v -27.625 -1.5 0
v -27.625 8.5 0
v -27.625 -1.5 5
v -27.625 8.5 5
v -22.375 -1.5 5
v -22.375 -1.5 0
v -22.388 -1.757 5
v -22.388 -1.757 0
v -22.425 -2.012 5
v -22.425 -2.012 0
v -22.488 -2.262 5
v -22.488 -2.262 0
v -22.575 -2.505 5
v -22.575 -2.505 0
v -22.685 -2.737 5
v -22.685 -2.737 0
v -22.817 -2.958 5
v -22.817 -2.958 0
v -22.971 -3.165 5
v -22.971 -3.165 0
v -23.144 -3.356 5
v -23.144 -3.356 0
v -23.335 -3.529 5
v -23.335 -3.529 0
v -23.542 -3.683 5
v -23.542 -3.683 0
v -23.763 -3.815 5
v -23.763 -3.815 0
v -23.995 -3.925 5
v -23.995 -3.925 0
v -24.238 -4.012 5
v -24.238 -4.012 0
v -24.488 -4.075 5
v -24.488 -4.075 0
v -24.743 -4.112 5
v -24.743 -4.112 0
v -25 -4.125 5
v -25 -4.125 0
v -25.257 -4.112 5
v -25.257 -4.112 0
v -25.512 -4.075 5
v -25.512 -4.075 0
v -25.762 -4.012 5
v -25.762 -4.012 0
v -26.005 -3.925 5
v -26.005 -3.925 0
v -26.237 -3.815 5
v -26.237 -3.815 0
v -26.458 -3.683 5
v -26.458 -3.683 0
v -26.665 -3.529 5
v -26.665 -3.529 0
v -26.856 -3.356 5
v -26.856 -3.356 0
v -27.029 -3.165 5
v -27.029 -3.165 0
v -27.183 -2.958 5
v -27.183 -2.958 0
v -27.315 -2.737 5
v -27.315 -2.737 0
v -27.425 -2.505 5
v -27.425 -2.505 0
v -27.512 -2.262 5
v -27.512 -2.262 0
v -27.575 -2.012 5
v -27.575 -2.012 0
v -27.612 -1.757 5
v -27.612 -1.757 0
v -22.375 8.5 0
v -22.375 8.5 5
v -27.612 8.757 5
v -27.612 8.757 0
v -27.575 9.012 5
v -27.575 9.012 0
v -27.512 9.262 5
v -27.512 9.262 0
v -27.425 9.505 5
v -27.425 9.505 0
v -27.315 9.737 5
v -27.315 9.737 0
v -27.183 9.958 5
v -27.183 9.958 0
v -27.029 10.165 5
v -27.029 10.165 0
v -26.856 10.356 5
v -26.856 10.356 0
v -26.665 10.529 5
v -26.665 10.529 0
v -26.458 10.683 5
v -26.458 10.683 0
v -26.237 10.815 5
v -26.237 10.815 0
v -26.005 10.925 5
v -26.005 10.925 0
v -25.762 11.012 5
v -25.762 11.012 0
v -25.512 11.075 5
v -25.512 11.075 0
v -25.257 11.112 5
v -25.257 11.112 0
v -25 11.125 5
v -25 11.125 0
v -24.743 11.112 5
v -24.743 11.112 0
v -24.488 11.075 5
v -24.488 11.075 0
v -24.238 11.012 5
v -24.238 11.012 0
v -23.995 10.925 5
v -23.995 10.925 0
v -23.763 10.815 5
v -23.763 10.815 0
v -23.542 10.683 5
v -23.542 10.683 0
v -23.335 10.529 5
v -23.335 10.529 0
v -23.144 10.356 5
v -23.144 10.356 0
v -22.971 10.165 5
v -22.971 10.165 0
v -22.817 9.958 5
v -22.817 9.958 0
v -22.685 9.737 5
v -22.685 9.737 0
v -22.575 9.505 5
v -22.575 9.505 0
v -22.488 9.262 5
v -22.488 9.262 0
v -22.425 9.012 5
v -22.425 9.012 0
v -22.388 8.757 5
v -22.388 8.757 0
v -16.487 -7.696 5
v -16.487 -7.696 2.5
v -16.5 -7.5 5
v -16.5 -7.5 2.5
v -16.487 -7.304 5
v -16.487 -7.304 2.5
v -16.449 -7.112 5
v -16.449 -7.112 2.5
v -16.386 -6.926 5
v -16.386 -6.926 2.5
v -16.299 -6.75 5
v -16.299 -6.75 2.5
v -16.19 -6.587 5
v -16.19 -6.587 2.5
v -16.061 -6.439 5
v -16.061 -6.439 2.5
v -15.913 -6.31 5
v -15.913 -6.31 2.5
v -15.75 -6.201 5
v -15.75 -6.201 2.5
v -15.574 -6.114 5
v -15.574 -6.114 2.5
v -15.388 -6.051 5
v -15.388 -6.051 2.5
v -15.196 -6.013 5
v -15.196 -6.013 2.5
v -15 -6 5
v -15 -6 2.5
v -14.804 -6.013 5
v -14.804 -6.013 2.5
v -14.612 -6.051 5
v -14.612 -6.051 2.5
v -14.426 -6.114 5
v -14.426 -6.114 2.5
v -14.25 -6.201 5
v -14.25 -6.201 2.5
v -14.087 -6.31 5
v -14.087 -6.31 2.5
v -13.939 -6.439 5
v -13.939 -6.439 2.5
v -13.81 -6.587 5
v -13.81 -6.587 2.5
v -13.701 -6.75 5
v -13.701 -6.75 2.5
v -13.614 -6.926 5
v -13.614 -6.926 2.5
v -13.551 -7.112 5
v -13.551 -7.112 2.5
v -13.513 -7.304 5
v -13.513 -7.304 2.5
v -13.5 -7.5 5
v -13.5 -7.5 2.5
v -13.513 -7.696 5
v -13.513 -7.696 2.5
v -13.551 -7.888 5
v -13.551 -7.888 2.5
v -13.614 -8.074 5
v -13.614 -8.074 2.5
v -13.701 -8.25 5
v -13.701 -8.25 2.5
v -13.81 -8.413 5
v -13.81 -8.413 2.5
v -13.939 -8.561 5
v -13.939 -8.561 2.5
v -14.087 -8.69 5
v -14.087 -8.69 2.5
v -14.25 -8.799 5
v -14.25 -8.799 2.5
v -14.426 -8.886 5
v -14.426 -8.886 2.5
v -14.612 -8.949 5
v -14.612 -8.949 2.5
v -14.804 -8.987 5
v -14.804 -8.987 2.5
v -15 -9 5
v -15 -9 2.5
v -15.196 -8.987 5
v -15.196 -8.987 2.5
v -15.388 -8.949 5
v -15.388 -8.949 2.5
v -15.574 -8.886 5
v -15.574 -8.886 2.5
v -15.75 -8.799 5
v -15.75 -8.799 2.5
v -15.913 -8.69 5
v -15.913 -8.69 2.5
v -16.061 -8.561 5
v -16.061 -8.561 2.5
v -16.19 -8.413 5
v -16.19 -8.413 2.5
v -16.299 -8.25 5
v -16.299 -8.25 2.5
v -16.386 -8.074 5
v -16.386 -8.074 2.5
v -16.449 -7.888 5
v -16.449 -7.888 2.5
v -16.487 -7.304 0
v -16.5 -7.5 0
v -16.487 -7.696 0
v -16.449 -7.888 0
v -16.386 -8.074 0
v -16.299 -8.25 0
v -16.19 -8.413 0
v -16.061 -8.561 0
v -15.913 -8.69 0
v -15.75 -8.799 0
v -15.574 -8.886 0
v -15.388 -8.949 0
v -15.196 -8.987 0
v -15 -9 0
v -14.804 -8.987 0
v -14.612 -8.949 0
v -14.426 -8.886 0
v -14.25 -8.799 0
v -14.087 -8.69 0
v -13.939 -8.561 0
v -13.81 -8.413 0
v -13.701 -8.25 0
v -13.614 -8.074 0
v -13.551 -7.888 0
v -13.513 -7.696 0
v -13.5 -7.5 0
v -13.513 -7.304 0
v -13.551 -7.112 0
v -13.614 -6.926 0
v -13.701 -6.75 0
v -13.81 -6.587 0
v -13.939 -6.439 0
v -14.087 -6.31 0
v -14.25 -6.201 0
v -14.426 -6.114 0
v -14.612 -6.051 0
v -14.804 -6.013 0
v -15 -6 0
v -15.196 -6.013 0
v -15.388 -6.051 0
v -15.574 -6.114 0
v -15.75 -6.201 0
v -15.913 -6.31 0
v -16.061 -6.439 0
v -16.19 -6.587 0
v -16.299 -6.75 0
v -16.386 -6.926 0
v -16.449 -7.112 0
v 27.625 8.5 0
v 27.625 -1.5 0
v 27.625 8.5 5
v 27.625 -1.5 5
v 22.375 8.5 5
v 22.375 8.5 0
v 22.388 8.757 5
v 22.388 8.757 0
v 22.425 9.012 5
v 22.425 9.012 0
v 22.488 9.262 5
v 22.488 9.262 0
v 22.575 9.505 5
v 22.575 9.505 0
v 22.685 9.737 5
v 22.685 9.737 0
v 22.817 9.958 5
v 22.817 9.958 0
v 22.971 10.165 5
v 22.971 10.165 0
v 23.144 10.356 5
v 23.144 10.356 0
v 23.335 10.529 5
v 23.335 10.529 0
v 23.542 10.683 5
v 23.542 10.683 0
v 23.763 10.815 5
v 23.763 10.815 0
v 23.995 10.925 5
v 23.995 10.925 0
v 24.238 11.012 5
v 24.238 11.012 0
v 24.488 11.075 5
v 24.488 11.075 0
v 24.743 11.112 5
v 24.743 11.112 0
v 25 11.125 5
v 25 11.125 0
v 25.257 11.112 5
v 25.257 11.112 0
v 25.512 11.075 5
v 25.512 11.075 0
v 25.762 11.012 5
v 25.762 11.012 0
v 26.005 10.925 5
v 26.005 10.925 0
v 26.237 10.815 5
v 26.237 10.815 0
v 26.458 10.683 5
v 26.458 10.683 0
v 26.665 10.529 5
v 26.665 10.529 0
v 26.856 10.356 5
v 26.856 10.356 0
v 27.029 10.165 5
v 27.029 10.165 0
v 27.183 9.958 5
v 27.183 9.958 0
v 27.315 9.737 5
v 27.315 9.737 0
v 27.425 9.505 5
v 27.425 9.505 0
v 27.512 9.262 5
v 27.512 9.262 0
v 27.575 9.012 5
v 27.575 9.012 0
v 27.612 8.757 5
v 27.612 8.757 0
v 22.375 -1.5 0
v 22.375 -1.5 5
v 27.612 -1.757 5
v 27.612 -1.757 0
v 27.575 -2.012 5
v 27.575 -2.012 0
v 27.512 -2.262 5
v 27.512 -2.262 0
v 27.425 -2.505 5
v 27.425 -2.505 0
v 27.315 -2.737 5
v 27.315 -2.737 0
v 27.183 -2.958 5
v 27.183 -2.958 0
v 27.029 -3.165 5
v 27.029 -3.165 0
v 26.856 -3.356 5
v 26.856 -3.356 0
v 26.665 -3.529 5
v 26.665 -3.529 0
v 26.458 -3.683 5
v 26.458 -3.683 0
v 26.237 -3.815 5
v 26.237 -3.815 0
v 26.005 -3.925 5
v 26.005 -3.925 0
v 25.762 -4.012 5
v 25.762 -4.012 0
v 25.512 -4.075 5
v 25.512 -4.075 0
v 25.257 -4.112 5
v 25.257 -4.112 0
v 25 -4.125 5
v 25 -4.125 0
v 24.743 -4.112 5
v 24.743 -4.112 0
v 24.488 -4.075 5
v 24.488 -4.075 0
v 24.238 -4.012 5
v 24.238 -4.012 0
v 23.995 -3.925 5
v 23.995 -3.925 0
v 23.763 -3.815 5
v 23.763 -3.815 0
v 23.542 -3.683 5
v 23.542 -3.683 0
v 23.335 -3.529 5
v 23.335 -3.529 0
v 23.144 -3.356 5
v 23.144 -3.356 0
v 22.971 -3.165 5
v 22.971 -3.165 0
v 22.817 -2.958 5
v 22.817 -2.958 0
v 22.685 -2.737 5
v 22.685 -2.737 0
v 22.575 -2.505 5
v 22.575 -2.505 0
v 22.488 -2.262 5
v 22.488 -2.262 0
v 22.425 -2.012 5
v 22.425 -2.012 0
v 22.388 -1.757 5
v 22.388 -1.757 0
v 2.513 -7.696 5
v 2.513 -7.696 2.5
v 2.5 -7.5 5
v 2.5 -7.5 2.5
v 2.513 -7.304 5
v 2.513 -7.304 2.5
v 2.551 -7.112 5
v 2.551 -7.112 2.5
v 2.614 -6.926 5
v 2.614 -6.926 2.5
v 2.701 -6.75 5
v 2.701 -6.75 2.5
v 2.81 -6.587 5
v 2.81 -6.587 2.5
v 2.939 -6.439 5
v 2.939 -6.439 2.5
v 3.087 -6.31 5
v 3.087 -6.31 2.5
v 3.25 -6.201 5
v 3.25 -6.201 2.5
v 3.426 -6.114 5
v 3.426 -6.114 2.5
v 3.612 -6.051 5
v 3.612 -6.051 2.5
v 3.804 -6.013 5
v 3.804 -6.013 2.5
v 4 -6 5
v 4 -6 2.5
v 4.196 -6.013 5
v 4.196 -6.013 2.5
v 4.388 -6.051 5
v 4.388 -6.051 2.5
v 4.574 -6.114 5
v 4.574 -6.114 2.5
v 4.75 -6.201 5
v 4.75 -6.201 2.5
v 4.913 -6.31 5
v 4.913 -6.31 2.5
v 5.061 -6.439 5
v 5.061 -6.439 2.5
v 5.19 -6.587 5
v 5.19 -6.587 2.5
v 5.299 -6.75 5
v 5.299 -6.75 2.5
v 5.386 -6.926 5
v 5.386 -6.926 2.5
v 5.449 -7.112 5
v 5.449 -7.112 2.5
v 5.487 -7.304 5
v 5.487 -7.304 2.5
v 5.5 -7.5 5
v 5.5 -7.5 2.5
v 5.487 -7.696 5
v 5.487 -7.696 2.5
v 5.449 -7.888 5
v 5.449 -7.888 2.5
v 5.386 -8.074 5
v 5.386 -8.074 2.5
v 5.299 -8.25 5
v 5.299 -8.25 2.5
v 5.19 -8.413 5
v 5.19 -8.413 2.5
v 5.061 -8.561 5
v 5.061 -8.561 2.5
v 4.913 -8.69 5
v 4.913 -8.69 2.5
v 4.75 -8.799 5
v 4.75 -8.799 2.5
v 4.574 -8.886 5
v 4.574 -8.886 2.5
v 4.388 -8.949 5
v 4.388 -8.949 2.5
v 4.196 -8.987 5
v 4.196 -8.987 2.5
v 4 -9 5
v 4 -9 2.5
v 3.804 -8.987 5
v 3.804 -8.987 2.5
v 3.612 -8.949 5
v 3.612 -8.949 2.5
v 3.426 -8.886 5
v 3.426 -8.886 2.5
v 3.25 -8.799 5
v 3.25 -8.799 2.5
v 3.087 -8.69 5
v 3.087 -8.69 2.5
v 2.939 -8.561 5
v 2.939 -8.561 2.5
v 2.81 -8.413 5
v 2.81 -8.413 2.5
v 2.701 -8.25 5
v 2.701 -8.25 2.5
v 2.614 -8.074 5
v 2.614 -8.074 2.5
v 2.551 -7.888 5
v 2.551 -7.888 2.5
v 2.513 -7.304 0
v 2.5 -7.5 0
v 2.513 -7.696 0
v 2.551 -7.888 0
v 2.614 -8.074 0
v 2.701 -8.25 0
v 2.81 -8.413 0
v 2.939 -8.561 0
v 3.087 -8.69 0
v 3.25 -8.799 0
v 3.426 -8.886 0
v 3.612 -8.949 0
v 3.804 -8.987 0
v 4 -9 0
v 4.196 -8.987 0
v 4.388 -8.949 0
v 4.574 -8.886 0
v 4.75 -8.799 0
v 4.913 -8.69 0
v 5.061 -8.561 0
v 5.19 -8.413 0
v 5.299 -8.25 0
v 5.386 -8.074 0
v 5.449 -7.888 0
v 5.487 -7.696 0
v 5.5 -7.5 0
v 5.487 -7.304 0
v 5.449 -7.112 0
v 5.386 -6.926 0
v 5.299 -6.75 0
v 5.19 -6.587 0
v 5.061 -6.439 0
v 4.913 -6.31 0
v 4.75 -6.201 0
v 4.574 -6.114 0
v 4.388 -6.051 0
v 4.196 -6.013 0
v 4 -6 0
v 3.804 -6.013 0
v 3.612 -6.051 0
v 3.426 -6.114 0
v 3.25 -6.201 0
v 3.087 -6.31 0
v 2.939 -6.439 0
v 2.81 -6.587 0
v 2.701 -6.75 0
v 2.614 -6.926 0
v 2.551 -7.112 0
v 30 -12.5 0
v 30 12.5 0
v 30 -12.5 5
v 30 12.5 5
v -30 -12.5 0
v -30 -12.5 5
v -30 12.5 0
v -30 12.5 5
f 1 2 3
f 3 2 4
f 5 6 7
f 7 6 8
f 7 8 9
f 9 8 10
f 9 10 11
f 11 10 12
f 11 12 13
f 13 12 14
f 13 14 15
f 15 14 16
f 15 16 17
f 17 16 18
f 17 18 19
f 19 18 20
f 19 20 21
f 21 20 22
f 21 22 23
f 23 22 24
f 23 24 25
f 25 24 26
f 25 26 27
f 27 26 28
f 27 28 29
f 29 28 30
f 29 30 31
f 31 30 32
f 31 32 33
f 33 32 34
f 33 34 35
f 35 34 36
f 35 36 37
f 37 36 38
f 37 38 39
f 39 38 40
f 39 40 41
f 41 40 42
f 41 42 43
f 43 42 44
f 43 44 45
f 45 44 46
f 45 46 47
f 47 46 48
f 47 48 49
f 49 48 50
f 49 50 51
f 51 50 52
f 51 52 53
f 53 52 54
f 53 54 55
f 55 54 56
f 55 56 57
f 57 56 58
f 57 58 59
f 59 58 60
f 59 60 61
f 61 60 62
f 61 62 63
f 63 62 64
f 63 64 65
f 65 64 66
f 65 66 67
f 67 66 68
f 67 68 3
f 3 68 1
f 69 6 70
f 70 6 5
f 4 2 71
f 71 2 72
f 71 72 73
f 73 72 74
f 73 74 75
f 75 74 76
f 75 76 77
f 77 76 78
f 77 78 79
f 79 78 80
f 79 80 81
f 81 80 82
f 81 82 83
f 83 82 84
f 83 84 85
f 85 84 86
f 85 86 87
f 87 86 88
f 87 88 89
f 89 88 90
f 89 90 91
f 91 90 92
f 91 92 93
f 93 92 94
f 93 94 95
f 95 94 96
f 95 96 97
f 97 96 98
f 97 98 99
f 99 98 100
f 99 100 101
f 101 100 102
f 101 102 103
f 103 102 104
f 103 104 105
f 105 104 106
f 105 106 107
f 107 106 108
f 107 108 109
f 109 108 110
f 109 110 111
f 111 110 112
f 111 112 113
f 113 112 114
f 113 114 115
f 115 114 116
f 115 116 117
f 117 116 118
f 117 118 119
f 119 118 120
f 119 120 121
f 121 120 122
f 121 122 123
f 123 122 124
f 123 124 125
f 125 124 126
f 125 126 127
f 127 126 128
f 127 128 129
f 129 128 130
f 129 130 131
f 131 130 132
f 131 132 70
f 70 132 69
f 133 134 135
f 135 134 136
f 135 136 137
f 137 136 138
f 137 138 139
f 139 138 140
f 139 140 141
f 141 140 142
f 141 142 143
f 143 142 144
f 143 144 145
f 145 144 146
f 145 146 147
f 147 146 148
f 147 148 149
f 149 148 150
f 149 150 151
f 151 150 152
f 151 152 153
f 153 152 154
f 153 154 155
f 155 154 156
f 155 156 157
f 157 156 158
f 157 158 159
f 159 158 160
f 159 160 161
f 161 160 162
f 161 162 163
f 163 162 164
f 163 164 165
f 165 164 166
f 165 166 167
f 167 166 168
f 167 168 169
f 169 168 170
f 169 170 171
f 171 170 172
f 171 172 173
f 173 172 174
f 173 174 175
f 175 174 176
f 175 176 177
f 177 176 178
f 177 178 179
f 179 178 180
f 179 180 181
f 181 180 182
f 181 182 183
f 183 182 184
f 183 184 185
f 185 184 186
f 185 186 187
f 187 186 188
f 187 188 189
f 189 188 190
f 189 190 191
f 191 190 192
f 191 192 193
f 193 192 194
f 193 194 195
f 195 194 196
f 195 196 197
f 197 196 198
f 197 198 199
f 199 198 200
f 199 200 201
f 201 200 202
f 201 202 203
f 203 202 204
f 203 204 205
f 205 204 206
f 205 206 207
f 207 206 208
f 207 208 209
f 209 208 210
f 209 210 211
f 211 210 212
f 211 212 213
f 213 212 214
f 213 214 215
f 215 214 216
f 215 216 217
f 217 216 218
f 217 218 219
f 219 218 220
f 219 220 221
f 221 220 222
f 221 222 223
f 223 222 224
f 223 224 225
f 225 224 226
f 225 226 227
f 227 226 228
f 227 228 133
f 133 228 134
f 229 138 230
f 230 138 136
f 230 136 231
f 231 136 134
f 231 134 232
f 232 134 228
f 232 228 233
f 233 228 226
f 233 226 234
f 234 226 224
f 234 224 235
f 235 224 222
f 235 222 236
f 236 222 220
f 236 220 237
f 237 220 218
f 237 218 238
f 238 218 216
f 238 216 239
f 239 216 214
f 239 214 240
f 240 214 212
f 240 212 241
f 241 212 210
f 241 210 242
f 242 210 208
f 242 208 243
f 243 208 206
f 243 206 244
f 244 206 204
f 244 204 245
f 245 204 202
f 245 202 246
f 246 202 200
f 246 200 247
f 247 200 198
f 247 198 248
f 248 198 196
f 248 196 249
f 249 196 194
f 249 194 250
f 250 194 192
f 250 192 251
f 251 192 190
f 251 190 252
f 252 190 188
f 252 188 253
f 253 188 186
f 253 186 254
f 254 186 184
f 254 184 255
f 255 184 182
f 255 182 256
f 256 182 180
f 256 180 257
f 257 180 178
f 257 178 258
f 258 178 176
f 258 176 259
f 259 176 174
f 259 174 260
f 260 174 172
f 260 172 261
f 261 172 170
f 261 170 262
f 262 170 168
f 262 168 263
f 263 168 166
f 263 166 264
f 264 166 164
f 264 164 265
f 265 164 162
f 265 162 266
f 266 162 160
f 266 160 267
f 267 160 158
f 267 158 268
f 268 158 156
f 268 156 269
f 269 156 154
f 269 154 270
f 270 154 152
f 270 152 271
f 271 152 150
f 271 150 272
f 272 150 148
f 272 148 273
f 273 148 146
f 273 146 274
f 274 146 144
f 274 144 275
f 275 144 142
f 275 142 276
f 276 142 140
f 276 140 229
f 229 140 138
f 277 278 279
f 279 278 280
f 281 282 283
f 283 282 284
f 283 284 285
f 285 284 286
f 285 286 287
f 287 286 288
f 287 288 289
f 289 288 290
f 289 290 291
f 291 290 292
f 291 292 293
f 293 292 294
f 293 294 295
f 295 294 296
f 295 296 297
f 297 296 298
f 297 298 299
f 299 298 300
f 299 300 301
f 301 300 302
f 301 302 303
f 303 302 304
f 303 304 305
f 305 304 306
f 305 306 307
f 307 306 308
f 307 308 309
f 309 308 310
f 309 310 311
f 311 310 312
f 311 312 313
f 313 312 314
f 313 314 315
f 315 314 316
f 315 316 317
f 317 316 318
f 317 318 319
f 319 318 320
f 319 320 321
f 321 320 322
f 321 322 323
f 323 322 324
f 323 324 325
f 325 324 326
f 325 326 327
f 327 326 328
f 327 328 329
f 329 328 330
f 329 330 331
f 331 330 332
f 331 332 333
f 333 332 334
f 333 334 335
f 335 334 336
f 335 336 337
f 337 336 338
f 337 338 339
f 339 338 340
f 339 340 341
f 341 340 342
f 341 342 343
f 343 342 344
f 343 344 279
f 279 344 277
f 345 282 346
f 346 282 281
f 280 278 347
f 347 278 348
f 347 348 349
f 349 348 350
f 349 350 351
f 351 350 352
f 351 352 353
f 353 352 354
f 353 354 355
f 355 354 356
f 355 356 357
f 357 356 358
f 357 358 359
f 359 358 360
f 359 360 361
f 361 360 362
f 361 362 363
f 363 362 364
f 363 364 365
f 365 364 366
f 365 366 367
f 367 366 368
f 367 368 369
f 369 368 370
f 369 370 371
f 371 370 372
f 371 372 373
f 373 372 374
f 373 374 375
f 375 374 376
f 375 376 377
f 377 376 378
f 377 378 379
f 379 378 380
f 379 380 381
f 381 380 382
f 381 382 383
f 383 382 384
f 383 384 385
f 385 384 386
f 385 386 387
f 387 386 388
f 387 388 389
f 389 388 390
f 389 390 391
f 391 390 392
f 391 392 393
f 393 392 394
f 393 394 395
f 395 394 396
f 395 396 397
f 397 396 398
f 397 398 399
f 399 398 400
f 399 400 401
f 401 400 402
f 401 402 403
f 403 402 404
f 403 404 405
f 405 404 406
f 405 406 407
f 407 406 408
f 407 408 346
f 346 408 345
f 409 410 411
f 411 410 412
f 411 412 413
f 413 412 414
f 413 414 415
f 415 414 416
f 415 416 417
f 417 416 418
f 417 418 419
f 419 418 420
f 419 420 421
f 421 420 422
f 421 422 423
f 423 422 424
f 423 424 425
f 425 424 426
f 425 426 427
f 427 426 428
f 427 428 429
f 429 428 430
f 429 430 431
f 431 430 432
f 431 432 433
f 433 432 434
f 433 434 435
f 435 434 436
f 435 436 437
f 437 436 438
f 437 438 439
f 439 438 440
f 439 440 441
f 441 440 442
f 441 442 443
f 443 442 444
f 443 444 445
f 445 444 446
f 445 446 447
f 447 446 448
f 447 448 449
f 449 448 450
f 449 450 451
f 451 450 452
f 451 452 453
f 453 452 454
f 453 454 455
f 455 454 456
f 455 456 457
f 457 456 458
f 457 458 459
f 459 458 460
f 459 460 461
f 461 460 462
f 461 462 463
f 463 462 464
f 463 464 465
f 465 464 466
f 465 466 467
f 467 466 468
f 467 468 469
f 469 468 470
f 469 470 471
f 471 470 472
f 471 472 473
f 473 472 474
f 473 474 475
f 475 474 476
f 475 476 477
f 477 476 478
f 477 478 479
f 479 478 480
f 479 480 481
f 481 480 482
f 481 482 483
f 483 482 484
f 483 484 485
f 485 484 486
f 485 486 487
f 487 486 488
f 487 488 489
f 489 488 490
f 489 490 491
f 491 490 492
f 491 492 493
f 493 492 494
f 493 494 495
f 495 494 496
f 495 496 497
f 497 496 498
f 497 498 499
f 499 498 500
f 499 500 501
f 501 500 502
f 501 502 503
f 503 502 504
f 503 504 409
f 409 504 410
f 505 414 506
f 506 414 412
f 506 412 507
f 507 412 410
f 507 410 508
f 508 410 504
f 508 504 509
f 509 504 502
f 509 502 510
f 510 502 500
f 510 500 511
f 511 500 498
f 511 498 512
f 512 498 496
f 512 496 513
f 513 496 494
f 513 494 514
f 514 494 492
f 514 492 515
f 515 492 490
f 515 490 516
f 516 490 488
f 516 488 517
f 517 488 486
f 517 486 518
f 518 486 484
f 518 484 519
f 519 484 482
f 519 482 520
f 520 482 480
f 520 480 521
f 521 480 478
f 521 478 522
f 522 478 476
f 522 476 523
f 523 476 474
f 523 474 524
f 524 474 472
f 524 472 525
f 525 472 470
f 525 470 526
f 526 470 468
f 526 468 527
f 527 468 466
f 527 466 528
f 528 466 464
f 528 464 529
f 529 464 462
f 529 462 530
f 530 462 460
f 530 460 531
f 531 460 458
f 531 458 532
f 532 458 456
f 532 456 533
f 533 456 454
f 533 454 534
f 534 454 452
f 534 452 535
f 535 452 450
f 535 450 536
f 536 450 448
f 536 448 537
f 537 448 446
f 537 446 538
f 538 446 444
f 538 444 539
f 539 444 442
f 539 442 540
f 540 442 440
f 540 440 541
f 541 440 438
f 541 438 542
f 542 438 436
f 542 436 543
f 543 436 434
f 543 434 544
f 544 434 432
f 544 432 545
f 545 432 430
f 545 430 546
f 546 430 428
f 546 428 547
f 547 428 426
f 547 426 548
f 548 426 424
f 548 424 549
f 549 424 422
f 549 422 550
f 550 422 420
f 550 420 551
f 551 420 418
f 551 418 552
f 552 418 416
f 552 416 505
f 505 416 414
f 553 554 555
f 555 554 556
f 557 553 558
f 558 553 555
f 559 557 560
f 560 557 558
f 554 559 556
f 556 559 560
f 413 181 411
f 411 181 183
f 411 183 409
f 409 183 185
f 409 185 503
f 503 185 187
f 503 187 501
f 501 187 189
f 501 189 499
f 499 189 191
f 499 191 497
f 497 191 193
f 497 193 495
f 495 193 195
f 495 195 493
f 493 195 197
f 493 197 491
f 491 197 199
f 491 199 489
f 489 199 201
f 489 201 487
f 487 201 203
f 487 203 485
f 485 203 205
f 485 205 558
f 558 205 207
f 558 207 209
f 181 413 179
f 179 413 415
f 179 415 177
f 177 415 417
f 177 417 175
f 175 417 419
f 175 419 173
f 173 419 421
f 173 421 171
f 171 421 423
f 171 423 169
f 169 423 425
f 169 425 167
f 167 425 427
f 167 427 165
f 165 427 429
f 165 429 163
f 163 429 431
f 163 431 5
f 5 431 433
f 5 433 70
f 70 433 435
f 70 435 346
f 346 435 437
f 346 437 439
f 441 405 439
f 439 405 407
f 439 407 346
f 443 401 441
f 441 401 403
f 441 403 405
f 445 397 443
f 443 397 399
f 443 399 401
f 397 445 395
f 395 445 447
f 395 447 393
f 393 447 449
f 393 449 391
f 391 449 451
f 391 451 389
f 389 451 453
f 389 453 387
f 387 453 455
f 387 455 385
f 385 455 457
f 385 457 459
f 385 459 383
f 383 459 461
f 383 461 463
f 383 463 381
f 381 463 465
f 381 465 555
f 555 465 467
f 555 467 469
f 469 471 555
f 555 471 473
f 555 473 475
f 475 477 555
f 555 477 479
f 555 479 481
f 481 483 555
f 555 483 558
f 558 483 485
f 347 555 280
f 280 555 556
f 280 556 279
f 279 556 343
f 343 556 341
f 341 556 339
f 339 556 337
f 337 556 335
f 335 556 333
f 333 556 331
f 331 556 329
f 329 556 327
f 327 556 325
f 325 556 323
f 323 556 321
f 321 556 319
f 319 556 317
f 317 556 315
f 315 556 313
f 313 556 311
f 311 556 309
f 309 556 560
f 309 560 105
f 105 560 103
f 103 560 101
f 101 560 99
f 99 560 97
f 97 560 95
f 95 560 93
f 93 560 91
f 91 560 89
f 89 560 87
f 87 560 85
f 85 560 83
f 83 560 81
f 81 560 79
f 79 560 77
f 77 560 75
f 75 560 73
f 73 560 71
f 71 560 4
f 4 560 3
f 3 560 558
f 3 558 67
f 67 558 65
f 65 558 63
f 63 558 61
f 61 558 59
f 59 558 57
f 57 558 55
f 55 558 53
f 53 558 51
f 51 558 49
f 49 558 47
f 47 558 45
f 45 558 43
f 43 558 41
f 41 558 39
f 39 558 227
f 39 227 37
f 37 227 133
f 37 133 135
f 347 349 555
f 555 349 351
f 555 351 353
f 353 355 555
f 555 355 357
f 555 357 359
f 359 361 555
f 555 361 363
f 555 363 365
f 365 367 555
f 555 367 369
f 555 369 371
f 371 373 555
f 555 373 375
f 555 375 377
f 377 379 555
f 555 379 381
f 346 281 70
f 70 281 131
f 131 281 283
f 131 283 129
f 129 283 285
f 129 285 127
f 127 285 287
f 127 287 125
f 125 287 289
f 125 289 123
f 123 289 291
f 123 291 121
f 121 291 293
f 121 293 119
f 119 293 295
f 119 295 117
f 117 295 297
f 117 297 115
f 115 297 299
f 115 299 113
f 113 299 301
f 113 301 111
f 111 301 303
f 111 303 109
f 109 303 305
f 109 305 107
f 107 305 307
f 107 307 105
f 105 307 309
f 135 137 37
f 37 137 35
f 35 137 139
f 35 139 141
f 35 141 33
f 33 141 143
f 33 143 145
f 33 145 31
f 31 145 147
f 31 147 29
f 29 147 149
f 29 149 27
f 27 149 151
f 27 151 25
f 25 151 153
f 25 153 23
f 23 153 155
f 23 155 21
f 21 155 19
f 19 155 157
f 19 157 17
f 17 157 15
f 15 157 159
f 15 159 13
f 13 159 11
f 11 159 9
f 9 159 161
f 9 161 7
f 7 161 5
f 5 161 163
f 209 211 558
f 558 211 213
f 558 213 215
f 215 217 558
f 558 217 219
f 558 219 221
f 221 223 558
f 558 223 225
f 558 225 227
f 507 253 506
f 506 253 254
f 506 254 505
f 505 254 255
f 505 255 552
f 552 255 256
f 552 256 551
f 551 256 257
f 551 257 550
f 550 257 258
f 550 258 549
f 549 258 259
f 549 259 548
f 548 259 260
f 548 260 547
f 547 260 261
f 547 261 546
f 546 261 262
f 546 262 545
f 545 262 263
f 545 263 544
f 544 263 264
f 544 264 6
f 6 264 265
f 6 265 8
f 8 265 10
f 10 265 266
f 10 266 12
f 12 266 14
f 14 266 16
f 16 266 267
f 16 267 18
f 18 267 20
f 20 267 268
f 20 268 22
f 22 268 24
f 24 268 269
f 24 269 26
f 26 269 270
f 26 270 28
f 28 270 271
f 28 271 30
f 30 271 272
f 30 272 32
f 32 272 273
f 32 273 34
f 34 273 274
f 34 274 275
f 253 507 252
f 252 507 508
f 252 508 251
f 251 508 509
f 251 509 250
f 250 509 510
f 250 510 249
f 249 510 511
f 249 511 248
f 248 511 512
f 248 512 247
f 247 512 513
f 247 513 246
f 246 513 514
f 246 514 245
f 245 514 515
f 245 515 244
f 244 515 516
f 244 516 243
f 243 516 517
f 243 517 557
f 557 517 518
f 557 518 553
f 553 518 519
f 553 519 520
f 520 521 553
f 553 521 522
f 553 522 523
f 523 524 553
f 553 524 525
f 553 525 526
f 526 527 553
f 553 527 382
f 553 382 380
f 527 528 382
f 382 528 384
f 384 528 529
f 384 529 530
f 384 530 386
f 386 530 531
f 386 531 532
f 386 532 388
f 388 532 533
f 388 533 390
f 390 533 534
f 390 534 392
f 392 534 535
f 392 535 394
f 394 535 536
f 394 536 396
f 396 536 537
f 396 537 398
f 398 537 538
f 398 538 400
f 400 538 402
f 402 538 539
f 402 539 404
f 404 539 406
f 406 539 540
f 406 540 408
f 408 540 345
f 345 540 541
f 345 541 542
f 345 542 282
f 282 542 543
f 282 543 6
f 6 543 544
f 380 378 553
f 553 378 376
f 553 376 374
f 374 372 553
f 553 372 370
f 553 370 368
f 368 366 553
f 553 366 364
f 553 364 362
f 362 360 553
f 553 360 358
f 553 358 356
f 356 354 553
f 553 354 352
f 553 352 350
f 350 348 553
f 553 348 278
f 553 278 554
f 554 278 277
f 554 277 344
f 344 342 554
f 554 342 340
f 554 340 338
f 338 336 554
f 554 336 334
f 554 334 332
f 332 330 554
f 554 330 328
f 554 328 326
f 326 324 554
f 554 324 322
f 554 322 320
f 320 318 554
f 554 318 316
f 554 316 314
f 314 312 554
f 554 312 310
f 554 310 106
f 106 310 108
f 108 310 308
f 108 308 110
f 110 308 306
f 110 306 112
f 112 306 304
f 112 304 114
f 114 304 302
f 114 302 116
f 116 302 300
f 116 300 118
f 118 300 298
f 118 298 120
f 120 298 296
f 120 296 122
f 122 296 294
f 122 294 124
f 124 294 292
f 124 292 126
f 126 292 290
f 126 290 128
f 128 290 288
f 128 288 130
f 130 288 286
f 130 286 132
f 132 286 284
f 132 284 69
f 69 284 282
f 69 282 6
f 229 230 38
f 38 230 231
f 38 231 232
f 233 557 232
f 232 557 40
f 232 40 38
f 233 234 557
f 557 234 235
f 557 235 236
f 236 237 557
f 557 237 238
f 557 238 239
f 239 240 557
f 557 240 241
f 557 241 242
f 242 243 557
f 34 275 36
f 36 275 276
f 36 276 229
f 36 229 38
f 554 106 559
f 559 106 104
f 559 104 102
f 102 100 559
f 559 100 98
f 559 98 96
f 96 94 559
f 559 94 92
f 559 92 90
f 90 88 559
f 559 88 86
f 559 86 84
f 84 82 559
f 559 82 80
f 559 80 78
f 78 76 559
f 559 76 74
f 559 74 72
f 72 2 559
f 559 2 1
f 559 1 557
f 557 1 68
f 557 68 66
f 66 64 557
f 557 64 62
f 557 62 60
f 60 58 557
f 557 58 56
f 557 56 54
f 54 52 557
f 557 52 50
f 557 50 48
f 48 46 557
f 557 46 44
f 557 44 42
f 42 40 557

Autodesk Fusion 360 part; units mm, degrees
sketch "Sketch1" plane through (0, 0, 0) normal (0, 0, 1) x (1, 0, 0)
  line L0 (30, -12.5) -> (-30, -12.5)
  line L1 (-30, -12.5) -> (-30, 12.5)
  line L2 (-30, 12.5) -> (30, 12.5)
  line L3 (30, 12.5) -> (30, -12.5)
  line L4 (30, -12.5) -> (-30, 12.5) construction
  line L5 (-30, -12.5) -> (30, 12.5) construction
  circle A0 centre (-15, -7.5) radius 1.5
  circle A1 centre (4, -7.5) radius 1.5
  line L6 (-27.625, 8.5) -> (-27.625, -1.5)
  arc A2 (-27.625, -1.5) -> (-22.375, -1.5) centre (-25, -1.5) ccw
  line L7 (-22.375, -1.5) -> (-22.375, 8.5)
  arc A3 (-22.375, 8.5) -> (-27.625, 8.5) centre (-25, 8.5) ccw
  line L8 (-25, 8.5) -> (-25, -1.5) construction
  line L9 (27.625, -1.5) -> (27.625, 8.5)
  arc A4 (27.625, 8.5) -> (22.375, 8.5) centre (25, 8.5) ccw
  line L10 (22.375, 8.5) -> (22.375, -1.5)
  arc A5 (22.375, -1.5) -> (27.625, -1.5) centre (25, -1.5) ccw
  line L11 (25, -1.5) -> (25, 8.5) construction
  dimension "d1" = 60
  dimension "d2" = 25
  dimension "d3" = 3
  dimension "d4" = 3
  dimension "d5" = 19
  dimension "d6" = 5
  dimension "d7" = 5
  dimension "d8" = 15
  dimension "d9" = 5.25
  dimension "d10" = 5.25
  dimension "d11" = 5
  dimension "d12" = 5
  dimension "d15" = 4
  dimension "d16" = 4
  dimension "d17" = 10
  dimension "d18" = 10
extrude "Extrude1" add sketch "Sketch1" along normal blind 5
equation "d7 = d6"
equation "d10 = d9"
equation "d12 = d11"
equation "d16 = d15"
equation "d18 = d17"
